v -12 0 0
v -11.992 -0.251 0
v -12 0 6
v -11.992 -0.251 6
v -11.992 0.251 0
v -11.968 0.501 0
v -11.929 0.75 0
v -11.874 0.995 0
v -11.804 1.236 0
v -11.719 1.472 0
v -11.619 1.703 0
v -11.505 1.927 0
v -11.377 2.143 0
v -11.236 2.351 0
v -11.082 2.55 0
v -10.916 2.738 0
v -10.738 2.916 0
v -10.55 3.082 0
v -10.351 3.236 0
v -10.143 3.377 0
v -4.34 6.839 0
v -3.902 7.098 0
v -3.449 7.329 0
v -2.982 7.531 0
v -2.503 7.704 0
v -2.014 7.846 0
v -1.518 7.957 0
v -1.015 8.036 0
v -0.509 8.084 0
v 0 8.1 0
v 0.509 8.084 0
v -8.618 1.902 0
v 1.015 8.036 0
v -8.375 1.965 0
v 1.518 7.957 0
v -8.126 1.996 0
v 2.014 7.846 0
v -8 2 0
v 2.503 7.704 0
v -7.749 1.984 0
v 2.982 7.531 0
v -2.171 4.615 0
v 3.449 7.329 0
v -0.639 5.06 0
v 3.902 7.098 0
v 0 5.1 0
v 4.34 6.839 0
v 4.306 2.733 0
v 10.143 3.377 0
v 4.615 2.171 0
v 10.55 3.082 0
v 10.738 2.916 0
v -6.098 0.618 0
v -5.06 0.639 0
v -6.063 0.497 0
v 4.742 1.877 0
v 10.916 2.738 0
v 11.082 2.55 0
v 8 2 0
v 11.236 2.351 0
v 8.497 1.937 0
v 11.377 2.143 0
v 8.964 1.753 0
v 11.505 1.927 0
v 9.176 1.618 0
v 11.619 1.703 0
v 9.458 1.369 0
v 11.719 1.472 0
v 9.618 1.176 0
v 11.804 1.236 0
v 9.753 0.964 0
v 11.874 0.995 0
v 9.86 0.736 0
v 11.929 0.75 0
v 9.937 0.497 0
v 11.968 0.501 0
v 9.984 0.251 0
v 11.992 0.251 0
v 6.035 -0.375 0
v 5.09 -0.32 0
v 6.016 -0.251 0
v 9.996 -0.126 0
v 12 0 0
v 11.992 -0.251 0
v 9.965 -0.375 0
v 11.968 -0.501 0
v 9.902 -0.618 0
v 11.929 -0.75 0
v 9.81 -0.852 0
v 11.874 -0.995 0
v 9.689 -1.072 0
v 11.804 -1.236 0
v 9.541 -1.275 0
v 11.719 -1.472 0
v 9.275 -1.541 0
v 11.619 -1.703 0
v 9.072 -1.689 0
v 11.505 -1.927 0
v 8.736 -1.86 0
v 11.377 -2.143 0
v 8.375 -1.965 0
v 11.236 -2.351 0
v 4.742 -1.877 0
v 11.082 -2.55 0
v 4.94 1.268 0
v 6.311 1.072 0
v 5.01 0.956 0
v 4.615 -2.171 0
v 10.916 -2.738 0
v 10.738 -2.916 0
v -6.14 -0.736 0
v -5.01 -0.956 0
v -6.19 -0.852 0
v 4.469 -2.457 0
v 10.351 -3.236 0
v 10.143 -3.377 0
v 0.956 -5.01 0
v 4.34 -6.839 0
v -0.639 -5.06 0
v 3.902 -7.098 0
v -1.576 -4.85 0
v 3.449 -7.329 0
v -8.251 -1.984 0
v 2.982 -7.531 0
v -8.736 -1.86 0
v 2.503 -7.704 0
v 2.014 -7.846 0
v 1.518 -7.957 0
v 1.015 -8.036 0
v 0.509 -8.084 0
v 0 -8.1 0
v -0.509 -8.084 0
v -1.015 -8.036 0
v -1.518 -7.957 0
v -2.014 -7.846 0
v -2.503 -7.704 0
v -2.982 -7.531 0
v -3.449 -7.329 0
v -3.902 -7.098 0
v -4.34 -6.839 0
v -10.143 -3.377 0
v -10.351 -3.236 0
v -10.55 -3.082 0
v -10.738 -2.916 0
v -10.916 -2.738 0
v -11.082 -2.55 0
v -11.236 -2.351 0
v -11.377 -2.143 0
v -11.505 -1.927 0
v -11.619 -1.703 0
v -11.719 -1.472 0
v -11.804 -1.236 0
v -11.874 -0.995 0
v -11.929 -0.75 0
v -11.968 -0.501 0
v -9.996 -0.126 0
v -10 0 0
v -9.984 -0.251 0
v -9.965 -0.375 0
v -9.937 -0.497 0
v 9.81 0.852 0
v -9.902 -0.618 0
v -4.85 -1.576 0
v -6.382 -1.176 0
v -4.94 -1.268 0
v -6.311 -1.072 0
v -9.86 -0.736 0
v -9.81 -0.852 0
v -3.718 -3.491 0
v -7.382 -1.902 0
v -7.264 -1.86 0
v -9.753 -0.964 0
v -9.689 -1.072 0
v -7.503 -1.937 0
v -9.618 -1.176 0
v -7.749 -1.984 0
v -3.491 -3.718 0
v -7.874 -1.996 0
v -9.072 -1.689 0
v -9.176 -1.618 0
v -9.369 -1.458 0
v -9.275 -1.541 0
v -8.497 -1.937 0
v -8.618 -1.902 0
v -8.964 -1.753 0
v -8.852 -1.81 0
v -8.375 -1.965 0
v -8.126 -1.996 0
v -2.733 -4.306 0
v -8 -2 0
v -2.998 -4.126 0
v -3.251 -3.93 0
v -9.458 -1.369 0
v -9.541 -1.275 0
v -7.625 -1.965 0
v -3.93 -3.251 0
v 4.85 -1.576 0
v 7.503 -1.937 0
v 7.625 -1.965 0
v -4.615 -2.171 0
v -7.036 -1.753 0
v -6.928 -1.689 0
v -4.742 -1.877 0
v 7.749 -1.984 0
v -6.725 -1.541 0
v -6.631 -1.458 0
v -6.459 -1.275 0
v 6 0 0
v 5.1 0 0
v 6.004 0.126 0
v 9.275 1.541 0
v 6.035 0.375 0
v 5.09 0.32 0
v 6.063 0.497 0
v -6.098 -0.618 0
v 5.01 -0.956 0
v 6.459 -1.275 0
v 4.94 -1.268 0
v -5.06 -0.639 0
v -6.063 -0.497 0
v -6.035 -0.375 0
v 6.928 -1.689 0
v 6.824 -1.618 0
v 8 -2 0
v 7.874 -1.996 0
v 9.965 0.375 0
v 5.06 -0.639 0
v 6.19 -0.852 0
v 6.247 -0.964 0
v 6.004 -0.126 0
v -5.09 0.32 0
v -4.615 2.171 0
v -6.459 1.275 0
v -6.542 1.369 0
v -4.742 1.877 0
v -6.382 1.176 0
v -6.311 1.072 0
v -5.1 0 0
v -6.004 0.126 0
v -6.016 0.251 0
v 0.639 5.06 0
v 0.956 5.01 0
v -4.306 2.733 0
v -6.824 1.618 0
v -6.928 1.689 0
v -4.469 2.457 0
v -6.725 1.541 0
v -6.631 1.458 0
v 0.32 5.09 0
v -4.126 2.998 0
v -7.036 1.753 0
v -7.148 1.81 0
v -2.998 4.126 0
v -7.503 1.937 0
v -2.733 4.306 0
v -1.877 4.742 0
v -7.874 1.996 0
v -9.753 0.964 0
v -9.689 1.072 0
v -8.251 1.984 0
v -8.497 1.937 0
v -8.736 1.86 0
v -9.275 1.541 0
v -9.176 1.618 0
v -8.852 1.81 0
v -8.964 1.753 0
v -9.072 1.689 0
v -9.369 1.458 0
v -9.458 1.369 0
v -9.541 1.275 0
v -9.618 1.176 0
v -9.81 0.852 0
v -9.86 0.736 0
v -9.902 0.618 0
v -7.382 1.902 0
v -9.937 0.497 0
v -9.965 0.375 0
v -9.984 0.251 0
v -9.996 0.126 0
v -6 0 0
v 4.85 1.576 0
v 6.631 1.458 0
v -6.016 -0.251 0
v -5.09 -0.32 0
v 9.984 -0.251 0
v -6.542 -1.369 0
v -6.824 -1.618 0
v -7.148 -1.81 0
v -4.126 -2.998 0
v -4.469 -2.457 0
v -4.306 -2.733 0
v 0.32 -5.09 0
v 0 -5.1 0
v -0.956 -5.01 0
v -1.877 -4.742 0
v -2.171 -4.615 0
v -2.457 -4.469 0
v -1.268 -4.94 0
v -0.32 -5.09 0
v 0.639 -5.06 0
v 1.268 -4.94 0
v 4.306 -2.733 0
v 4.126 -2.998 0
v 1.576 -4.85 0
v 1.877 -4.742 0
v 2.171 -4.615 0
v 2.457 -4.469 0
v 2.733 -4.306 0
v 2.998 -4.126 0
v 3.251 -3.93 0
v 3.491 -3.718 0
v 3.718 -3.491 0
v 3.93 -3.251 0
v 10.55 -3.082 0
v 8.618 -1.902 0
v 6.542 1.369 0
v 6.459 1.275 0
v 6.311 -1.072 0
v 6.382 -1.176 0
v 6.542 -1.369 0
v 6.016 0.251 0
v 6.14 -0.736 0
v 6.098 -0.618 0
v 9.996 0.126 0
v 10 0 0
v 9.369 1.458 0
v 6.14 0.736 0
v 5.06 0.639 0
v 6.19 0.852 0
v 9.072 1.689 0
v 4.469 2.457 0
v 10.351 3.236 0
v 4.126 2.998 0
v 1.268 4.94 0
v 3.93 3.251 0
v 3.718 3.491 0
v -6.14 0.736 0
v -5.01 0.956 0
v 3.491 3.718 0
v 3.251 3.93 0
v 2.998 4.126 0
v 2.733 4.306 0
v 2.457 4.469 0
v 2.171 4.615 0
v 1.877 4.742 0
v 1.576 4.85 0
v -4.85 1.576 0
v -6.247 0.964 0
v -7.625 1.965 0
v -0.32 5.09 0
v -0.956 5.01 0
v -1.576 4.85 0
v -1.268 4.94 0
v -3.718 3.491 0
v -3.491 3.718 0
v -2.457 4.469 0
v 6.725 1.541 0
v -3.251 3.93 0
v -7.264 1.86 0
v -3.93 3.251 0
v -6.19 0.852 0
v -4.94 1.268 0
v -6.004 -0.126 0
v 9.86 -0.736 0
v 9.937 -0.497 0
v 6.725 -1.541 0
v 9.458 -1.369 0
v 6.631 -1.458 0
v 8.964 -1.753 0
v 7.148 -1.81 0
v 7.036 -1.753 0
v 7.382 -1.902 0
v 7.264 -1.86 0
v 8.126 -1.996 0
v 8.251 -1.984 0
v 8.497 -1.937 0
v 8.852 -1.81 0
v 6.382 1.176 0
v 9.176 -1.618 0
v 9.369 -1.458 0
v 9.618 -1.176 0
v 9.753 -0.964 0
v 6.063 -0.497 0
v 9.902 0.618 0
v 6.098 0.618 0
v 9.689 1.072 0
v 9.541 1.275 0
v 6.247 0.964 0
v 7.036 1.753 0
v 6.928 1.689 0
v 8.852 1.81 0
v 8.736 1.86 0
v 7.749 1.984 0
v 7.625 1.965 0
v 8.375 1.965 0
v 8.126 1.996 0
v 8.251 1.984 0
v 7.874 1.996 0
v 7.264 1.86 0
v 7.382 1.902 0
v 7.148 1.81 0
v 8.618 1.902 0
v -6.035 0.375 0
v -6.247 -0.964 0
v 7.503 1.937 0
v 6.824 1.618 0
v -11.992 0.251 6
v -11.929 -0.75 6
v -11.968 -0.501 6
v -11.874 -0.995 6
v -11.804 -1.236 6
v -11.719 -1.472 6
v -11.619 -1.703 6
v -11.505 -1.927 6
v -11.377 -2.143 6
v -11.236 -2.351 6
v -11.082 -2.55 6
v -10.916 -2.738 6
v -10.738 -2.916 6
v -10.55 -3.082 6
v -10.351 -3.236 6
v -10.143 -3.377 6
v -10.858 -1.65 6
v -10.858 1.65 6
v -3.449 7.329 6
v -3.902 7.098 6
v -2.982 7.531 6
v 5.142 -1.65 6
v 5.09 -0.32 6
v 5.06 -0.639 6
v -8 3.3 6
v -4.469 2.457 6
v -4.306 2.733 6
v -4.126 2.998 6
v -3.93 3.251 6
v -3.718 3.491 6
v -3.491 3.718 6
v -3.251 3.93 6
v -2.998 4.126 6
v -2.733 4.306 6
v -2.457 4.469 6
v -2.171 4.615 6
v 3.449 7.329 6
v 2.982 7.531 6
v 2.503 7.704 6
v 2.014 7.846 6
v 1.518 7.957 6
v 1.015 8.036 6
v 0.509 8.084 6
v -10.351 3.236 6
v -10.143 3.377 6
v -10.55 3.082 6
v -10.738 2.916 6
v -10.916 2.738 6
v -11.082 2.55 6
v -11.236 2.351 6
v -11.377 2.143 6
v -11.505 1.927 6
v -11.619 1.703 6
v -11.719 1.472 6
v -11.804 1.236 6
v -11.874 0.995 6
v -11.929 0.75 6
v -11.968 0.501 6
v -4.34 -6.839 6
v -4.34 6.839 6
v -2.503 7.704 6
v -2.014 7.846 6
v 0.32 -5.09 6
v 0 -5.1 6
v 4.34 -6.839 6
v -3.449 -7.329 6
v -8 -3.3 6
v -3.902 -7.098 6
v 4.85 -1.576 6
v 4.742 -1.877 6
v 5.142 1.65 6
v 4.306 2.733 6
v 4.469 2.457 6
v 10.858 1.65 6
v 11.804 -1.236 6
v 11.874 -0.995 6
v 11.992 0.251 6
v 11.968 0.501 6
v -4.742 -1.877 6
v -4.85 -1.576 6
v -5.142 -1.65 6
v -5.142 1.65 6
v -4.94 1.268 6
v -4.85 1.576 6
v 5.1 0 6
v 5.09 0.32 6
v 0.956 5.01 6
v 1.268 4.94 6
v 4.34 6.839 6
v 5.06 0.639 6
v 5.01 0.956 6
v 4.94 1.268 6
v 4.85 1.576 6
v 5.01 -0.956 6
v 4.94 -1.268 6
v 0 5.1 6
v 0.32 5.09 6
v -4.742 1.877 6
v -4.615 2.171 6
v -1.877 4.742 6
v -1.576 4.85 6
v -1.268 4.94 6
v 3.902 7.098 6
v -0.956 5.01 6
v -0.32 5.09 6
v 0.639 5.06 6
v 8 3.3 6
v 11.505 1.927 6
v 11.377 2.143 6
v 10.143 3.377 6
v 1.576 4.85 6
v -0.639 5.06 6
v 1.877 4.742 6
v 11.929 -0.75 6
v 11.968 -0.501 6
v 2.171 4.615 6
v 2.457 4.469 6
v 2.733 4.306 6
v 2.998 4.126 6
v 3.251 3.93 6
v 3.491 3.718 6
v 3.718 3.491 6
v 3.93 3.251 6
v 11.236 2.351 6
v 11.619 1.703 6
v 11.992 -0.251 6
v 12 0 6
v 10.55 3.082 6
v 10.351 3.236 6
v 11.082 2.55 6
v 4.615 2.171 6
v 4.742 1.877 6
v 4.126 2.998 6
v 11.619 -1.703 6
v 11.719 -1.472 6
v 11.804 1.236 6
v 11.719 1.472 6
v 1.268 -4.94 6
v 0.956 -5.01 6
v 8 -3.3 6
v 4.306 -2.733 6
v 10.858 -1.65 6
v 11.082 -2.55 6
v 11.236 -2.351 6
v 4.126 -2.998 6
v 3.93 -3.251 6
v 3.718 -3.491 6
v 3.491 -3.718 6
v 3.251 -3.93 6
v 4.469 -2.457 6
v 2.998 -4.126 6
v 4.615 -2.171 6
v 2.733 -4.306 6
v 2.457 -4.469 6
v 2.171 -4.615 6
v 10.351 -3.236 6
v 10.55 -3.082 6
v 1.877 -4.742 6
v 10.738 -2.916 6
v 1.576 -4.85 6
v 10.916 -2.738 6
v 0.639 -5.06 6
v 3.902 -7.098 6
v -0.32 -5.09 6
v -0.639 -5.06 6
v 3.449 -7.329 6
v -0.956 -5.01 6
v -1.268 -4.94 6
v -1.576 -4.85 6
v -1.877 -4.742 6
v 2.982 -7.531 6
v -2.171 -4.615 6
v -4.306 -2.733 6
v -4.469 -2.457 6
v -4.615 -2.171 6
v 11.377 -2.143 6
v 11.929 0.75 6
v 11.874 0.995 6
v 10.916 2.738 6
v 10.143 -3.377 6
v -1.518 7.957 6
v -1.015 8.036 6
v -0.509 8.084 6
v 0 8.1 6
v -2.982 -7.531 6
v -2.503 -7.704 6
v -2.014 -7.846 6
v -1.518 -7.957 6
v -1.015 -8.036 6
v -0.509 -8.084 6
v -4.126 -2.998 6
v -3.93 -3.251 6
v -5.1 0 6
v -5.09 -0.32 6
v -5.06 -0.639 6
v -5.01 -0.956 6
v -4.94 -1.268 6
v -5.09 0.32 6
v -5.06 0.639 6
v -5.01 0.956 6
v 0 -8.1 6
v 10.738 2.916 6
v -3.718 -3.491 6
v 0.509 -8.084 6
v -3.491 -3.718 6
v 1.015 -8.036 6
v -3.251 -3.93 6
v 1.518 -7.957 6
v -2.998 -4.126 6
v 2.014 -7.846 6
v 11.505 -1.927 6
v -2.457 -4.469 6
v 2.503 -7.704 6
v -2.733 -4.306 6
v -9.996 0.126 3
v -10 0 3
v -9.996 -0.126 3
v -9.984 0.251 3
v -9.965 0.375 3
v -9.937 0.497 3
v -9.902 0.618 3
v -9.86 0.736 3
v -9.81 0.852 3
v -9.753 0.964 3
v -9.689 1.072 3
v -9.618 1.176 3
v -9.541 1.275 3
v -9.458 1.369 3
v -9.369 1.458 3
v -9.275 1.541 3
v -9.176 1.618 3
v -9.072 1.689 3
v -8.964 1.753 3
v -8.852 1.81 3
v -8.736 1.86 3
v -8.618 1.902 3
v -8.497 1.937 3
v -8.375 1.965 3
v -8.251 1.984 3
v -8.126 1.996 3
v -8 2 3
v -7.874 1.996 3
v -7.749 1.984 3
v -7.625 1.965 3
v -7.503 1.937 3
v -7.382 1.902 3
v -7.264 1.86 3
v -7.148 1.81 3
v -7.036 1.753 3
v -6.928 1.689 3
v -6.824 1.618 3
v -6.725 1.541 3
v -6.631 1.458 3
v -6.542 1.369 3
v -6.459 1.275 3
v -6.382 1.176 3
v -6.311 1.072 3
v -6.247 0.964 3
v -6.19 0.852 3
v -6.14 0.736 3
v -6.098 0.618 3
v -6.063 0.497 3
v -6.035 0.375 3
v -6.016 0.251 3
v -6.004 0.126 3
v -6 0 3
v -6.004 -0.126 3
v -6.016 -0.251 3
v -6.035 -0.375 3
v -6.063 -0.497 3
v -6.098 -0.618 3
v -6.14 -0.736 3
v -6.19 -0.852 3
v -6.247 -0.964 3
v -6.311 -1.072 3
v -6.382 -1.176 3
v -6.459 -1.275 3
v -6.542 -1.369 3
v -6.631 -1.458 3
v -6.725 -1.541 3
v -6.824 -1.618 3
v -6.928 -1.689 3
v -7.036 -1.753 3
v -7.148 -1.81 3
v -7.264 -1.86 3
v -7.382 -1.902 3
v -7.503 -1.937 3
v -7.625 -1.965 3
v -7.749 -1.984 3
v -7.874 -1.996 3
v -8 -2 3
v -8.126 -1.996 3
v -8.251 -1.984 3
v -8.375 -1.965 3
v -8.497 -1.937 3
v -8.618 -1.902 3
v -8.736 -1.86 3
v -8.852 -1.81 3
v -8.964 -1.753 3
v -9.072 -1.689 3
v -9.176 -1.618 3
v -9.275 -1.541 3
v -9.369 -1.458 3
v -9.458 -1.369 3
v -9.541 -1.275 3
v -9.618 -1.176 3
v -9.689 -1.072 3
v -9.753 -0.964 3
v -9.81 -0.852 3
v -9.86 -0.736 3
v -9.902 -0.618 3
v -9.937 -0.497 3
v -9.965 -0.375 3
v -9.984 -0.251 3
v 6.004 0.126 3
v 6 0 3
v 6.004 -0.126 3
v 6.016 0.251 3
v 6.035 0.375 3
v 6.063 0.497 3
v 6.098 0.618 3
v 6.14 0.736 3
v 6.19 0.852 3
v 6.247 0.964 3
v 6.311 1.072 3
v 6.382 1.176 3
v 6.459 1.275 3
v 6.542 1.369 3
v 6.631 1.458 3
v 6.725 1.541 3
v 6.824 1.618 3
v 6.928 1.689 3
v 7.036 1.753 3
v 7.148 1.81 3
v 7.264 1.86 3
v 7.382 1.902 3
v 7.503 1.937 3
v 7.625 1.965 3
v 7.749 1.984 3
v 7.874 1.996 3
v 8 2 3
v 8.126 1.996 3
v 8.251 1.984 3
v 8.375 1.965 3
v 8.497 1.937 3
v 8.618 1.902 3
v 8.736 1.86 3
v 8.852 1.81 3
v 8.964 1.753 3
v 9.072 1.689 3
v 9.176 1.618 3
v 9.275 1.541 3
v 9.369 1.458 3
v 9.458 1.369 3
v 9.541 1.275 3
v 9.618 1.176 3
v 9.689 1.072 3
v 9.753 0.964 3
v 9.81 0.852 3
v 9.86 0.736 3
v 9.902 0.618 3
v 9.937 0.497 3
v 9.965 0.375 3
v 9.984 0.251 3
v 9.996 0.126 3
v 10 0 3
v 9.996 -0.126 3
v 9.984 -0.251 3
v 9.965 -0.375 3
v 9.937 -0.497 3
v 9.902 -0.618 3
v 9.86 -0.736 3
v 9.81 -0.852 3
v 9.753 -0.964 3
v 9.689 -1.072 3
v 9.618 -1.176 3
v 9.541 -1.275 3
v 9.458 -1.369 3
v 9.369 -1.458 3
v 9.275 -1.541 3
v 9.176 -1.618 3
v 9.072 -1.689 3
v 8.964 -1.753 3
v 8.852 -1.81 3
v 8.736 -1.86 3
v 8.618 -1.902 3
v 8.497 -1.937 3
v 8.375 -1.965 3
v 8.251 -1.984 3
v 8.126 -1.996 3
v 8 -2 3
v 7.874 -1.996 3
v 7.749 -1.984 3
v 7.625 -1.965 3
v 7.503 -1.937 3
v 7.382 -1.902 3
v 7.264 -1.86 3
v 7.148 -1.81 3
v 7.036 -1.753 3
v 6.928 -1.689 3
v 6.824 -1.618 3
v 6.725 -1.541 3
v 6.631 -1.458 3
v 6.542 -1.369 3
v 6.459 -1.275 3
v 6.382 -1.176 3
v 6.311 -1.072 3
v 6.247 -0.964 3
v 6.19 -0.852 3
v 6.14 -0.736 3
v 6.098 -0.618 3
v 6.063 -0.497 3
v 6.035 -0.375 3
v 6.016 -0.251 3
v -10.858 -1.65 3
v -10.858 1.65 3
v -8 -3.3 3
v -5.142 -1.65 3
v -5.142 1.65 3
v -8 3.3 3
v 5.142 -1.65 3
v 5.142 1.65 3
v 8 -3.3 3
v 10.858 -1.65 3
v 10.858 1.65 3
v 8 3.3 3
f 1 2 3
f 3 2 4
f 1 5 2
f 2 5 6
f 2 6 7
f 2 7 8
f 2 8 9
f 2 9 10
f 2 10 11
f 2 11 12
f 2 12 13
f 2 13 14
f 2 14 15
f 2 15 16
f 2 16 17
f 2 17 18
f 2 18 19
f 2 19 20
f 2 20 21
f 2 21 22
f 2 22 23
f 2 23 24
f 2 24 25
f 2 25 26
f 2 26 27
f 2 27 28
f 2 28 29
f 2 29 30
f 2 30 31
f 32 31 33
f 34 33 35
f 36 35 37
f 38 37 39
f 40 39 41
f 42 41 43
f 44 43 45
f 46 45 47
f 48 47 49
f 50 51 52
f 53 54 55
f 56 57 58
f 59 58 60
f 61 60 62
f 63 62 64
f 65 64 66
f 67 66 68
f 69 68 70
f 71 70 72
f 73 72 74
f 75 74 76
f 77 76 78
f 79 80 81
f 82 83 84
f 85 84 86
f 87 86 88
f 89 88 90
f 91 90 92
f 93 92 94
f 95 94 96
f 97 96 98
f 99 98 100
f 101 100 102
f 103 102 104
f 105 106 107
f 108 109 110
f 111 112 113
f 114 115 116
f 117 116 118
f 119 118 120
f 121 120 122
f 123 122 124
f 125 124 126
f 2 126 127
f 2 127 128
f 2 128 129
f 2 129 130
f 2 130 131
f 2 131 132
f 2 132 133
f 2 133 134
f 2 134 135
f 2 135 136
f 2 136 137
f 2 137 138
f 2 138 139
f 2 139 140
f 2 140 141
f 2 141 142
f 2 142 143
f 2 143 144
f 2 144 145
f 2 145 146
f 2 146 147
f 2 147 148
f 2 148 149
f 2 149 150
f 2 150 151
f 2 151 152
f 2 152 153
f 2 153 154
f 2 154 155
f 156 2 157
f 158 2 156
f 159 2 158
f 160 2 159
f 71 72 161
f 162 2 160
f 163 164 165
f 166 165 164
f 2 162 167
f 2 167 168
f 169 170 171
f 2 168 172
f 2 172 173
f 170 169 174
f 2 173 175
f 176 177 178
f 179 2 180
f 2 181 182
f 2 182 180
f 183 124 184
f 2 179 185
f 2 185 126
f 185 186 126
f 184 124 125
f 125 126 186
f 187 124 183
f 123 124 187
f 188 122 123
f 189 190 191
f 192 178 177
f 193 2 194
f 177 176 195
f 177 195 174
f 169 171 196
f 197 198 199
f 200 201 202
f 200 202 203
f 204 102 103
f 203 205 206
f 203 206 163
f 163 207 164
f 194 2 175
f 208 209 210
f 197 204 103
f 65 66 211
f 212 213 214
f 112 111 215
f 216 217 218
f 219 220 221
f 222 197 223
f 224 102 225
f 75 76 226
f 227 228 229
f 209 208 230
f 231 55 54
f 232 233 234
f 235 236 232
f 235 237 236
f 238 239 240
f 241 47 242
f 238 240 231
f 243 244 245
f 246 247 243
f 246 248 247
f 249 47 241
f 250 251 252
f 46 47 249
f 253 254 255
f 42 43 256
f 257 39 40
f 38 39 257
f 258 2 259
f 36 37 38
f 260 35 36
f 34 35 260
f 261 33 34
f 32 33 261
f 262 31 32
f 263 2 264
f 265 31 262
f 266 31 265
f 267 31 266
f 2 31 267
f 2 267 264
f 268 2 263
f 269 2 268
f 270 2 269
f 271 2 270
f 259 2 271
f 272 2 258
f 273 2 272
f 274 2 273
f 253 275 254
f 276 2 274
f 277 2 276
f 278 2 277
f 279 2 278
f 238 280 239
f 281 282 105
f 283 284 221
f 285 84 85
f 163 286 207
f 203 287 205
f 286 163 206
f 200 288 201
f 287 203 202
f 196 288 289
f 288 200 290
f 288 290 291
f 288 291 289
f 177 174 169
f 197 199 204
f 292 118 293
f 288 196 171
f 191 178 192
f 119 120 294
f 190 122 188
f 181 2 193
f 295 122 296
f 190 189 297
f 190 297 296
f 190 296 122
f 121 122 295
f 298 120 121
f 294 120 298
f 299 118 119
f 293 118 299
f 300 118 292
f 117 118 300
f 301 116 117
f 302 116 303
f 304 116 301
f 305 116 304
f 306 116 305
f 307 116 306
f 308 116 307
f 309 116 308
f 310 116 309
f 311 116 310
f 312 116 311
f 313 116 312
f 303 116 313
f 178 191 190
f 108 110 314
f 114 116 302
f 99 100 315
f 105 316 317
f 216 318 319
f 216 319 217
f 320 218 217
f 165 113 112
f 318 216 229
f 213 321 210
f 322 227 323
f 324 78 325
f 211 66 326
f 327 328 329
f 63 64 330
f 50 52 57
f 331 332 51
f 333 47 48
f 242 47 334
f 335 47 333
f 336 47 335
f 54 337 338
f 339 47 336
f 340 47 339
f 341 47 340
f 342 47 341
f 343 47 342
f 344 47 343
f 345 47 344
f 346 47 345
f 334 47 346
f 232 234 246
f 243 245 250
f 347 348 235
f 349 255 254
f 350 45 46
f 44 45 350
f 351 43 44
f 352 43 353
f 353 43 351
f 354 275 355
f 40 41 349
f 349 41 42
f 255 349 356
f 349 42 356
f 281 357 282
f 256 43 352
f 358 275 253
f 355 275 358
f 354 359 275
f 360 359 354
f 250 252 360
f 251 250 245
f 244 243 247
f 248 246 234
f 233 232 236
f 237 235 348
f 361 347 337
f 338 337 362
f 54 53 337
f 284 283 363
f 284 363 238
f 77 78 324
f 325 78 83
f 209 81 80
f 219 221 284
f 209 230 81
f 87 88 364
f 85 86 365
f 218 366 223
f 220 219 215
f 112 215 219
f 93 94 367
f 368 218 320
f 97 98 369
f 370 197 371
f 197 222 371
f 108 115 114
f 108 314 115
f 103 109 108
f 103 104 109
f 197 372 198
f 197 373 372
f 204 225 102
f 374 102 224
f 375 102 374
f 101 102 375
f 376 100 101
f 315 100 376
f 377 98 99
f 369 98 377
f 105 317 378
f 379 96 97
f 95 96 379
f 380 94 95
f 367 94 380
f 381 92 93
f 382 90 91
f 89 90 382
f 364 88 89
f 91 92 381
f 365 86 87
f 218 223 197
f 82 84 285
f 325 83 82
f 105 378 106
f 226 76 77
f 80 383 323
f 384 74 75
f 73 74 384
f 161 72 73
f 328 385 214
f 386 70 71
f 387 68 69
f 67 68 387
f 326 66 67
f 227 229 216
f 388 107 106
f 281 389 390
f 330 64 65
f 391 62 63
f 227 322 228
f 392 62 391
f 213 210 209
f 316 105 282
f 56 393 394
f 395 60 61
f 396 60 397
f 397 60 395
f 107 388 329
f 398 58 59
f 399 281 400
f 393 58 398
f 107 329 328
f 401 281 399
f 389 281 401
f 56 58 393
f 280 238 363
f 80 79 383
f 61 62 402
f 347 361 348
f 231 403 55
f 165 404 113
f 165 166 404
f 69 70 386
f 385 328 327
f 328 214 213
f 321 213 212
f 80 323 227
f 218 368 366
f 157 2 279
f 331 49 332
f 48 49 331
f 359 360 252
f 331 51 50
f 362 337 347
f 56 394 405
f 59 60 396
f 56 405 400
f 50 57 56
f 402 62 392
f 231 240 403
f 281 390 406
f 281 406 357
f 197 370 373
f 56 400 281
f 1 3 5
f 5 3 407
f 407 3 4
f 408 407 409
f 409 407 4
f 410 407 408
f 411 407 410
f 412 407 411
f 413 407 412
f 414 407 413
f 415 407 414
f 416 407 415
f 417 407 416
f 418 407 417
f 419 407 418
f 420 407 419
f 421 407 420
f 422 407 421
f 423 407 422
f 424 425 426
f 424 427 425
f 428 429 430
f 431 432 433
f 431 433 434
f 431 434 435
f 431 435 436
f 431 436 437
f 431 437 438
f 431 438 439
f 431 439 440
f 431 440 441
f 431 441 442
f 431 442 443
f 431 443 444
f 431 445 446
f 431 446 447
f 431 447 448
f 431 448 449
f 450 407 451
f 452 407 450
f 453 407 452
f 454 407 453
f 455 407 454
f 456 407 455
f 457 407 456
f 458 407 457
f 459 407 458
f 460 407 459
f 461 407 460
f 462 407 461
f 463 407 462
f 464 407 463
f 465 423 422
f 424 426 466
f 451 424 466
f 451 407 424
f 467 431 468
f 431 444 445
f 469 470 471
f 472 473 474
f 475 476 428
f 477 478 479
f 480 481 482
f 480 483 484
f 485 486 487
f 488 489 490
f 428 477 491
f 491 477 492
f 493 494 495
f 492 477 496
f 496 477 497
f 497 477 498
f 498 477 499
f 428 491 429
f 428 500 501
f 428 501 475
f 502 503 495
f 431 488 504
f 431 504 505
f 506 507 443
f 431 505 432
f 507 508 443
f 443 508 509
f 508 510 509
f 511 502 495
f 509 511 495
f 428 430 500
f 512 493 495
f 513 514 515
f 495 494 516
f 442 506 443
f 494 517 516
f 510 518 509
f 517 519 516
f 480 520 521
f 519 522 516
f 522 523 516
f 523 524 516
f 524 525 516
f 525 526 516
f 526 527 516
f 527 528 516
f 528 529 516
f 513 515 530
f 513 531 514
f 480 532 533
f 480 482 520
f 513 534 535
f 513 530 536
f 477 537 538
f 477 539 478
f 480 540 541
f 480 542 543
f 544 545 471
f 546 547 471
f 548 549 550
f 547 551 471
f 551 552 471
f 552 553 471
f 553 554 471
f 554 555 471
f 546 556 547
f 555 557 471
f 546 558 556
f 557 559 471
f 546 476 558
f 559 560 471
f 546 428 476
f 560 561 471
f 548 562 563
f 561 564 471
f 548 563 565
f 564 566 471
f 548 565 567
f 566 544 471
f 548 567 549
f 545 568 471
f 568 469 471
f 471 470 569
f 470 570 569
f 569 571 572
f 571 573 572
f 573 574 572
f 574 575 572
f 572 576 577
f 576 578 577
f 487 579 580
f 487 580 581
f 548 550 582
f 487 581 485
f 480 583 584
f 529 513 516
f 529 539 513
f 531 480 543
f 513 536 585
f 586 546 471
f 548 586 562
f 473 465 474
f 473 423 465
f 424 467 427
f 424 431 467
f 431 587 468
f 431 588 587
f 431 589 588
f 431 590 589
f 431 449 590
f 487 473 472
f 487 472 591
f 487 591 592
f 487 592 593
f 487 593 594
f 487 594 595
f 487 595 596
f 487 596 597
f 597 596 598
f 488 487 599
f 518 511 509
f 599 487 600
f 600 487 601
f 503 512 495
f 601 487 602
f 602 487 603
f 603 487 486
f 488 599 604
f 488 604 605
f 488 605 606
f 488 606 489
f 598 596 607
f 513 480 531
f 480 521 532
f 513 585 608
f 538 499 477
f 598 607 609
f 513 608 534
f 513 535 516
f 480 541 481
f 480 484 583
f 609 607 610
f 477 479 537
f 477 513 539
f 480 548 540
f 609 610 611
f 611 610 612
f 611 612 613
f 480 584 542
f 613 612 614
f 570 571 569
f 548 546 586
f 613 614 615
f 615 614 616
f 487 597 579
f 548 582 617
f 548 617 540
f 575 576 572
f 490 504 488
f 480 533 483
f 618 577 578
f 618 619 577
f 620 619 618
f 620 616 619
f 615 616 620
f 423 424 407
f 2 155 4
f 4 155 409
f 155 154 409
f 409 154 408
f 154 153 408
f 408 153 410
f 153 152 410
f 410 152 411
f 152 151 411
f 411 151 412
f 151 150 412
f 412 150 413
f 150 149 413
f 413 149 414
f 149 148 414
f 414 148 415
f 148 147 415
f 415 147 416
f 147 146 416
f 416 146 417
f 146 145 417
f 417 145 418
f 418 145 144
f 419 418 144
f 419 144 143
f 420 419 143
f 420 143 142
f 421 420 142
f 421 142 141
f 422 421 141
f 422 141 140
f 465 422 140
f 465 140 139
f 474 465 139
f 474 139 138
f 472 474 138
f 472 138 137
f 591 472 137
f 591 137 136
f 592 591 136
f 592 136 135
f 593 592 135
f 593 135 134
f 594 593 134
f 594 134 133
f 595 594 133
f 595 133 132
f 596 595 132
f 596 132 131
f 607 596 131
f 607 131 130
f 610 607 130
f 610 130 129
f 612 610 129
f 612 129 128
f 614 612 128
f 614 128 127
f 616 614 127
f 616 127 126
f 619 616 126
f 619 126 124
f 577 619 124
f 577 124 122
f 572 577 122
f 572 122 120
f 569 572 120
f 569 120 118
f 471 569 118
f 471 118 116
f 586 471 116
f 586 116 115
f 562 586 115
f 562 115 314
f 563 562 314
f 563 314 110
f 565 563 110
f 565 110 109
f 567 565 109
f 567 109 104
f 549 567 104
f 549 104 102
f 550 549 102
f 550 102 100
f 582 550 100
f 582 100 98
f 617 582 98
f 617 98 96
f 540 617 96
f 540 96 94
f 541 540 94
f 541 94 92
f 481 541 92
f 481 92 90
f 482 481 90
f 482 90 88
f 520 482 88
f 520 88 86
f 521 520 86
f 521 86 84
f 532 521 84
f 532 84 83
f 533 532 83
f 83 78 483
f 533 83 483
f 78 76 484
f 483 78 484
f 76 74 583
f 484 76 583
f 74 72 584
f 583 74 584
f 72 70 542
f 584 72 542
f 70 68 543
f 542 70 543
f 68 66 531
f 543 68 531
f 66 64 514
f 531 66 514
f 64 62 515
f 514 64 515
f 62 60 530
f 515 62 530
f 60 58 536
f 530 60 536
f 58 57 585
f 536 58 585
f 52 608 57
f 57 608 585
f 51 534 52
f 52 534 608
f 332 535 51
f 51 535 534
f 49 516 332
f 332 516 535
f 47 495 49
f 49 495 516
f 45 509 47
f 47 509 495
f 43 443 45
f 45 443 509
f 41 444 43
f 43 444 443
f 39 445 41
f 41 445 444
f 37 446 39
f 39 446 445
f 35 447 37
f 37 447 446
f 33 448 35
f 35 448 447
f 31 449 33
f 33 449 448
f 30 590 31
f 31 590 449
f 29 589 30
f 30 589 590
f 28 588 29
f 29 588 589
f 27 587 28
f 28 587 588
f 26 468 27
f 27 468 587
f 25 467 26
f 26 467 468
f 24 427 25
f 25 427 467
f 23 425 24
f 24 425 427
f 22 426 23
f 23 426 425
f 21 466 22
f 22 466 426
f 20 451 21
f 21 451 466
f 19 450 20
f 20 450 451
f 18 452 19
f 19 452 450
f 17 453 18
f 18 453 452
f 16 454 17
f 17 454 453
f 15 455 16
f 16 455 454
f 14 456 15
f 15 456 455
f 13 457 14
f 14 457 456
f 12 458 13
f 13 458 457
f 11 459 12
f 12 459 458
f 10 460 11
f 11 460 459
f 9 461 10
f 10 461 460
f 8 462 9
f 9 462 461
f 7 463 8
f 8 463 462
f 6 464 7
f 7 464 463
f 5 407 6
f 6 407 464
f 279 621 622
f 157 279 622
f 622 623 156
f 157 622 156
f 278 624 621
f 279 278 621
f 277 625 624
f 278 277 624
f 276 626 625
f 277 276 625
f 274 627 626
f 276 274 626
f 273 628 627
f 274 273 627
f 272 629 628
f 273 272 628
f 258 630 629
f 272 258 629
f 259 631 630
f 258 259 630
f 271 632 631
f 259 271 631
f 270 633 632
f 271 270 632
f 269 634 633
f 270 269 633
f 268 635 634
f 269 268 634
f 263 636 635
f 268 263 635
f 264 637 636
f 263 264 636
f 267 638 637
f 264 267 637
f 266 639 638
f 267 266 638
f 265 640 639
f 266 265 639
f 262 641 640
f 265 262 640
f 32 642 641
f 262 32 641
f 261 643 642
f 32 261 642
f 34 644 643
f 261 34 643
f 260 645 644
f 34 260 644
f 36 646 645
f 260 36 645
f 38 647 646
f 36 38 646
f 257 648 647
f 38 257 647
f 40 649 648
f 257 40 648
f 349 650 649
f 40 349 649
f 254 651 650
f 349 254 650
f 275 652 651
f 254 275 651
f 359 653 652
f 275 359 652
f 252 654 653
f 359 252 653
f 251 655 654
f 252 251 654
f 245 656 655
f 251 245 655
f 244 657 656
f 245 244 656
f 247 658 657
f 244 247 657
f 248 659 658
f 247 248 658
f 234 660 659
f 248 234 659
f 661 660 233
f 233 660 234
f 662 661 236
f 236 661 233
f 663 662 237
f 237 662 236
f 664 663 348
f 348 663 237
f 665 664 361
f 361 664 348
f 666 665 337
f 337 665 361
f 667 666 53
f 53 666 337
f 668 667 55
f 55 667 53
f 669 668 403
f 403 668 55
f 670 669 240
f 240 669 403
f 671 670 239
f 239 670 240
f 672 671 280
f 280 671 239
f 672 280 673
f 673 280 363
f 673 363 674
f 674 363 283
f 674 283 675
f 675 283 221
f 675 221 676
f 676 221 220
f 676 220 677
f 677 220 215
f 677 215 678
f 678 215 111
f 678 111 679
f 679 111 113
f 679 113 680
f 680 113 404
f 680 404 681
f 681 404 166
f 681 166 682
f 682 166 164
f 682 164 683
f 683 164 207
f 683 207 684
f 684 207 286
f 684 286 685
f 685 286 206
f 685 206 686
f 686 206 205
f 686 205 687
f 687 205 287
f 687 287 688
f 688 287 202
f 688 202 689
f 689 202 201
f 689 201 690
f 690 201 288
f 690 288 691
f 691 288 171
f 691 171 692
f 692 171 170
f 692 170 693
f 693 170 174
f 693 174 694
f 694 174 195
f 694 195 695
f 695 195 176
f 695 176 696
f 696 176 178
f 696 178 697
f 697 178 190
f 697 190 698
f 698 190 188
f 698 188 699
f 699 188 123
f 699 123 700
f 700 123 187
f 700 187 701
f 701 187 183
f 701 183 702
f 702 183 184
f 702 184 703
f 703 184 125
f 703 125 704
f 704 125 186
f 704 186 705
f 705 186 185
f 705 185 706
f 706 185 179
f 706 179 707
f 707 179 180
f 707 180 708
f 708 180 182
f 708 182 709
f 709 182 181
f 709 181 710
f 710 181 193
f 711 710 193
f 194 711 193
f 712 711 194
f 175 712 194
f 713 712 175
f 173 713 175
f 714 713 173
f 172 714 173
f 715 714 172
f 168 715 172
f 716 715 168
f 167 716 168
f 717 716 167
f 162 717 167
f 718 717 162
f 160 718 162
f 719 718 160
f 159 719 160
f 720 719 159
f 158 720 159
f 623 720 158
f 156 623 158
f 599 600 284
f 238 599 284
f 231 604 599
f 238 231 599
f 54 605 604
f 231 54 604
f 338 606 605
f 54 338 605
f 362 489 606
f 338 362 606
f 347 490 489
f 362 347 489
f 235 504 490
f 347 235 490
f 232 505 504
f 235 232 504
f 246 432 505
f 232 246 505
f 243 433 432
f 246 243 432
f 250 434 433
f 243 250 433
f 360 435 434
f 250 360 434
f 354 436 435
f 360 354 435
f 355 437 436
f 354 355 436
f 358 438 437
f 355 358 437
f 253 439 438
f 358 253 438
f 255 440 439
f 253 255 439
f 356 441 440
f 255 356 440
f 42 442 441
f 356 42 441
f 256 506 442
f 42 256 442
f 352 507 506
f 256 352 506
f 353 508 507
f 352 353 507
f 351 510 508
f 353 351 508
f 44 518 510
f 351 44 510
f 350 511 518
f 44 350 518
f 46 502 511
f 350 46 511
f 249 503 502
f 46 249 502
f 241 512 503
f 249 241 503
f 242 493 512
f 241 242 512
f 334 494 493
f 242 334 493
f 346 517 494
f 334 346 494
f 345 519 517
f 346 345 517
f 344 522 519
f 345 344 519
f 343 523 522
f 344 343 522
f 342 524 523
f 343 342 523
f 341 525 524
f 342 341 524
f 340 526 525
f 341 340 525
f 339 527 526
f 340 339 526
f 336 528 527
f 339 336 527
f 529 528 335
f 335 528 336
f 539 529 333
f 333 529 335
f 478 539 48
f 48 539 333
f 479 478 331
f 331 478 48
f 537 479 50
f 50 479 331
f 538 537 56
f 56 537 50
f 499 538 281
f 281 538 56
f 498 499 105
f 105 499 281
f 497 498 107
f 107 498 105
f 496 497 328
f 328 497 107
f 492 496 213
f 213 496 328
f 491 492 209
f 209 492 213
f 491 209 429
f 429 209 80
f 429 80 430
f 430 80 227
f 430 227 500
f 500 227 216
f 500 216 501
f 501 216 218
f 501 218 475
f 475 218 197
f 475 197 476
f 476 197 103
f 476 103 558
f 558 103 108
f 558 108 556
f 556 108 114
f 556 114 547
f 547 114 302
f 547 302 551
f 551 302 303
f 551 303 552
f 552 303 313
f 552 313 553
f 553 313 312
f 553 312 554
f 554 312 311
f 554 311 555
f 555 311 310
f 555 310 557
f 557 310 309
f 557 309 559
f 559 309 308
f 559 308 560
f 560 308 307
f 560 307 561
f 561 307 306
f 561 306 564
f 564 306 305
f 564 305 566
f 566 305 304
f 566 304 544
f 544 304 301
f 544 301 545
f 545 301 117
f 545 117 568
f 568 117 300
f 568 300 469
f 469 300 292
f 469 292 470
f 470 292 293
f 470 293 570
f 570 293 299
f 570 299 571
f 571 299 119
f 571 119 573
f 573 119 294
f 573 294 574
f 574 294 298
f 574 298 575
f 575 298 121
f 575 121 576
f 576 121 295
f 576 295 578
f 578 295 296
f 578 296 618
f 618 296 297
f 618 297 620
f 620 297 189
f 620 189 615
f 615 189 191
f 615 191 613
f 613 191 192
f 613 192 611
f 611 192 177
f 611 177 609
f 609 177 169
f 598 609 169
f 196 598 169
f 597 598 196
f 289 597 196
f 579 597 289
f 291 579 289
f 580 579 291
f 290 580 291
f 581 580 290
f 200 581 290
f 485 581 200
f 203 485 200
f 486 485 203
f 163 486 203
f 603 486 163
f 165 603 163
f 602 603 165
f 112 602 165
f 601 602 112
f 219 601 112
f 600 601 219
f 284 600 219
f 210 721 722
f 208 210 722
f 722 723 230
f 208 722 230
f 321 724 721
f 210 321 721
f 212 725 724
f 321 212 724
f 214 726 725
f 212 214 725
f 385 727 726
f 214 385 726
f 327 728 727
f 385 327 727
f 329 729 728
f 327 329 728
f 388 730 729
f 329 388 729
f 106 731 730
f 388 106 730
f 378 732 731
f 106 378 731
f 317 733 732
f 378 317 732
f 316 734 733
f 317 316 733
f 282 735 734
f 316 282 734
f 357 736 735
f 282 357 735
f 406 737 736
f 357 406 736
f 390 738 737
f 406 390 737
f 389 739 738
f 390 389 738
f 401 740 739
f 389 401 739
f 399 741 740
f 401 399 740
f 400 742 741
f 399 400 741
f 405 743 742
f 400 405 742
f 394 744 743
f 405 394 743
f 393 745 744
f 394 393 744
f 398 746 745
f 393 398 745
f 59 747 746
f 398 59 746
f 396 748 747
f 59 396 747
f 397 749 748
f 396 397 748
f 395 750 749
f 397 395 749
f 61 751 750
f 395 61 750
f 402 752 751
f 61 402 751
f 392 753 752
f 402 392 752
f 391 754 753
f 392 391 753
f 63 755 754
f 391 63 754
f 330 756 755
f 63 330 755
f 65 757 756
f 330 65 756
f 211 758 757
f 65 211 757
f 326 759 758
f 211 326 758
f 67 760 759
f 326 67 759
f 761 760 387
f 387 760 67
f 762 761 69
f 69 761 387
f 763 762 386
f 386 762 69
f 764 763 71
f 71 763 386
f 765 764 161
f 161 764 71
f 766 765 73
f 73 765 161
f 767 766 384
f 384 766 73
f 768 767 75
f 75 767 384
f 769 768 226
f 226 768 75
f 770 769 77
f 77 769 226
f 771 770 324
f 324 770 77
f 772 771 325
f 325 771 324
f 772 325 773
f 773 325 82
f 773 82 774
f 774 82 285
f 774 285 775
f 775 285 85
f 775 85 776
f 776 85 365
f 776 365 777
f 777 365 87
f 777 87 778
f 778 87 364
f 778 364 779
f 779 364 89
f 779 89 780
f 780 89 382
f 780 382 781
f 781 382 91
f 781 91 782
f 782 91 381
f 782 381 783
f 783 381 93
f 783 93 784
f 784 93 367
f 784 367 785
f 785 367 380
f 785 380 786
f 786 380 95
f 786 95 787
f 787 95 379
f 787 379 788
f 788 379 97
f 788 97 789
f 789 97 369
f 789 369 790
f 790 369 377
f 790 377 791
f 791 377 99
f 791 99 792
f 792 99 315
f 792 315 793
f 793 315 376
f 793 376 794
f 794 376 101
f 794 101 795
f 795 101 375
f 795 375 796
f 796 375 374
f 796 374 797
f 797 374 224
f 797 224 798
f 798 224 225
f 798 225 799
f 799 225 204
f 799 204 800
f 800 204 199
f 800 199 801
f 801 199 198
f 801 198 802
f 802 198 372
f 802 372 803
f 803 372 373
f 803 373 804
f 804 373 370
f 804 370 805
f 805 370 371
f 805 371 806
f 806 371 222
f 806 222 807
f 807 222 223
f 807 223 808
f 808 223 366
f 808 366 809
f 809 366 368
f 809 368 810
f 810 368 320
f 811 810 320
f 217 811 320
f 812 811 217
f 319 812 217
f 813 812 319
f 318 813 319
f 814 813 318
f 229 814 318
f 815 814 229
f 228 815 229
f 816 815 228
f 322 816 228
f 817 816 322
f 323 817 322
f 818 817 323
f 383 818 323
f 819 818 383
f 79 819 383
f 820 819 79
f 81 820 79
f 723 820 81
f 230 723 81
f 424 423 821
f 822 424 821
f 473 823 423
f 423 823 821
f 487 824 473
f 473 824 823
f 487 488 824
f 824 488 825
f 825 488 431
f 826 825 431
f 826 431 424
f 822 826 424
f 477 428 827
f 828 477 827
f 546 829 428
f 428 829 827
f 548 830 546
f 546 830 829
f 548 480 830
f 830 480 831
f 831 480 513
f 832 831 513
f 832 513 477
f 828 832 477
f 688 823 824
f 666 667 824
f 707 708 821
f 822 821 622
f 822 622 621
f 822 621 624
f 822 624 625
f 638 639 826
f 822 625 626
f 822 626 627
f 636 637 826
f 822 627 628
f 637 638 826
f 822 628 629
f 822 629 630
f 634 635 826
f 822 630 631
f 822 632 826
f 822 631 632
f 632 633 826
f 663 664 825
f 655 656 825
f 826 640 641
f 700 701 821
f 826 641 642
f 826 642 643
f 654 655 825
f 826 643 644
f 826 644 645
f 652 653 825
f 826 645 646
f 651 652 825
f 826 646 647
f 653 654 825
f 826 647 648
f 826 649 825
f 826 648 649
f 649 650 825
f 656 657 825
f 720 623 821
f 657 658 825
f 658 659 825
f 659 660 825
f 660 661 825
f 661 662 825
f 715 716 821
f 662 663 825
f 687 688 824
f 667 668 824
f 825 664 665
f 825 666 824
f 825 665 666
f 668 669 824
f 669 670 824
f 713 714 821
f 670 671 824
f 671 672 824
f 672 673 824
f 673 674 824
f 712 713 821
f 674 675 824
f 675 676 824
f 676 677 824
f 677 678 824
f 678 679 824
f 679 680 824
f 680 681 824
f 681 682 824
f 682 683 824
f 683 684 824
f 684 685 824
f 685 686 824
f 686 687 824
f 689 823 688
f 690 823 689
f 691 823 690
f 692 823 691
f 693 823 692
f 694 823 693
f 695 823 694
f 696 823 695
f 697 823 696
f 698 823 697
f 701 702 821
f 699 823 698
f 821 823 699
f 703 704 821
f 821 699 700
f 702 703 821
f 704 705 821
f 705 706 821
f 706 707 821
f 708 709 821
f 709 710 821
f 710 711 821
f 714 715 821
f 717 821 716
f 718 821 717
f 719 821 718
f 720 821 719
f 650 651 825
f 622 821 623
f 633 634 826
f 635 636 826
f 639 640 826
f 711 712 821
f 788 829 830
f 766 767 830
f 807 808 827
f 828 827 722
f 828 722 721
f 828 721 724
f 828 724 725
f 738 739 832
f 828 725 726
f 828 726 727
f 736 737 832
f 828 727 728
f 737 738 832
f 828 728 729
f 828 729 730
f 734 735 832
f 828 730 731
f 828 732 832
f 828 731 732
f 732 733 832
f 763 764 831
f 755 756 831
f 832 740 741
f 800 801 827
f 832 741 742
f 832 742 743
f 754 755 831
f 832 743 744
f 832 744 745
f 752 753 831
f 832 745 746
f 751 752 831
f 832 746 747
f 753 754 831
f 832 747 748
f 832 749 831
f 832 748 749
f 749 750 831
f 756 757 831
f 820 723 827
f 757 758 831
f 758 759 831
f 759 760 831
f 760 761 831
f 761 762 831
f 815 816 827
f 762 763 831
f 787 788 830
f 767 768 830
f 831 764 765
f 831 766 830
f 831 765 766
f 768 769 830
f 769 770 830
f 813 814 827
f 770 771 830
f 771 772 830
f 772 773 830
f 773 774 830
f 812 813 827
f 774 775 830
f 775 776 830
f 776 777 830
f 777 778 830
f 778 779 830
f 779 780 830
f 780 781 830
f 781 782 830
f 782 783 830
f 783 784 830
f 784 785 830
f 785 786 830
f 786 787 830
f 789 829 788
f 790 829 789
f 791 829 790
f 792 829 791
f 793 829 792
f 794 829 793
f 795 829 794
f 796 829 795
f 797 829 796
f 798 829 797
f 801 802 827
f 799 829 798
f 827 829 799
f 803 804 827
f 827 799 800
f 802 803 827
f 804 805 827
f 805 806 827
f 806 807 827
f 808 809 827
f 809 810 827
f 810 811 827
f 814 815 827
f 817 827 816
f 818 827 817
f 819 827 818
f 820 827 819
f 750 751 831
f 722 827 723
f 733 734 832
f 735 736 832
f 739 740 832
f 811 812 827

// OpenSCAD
//Dessiné pour arbres de 10mm. Voir le fichier SUPPORT_AXE_Y_8MM.stl pour la version pour arbres 8mm.

r_tige=5.1;
r_cote=4;
r_m3=2;
r_ecrou_m3=3.3;
ecart=8;
hauteur=6;

module support_axe_y(){
	difference(){
		hull(){
			cylinder(h=hauteur, r=r_tige+3, $fn=100);
			translate([ecart,0,0]){cylinder(h=hauteur, r=r_cote, $fn=100);}
			translate([-ecart,0,0]){cylinder(h=hauteur, r=r_cote, $fn=100);}
		}
		translate([0,0,-5]){cylinder(h=hauteur+10, r=r_tige, $fn=100);}
		translate([ecart,0,-5]){cylinder(h=hauteur+10, r=r_m3, $fn=100);}
		translate([-ecart,0,-5]){cylinder(h=hauteur+10, r=r_m3, $fn=100);}

		translate([ecart,0,hauteur-3]){rotate([0,0,30])cylinder(h=hauteur, r=r_ecrou_m3, $fn=6);}
		translate([-ecart,0,hauteur-3]){rotate([0,0,30])cylinder(h=hauteur, r=r_ecrou_m3, $fn=6);}
	}

}

support_axe_y();
